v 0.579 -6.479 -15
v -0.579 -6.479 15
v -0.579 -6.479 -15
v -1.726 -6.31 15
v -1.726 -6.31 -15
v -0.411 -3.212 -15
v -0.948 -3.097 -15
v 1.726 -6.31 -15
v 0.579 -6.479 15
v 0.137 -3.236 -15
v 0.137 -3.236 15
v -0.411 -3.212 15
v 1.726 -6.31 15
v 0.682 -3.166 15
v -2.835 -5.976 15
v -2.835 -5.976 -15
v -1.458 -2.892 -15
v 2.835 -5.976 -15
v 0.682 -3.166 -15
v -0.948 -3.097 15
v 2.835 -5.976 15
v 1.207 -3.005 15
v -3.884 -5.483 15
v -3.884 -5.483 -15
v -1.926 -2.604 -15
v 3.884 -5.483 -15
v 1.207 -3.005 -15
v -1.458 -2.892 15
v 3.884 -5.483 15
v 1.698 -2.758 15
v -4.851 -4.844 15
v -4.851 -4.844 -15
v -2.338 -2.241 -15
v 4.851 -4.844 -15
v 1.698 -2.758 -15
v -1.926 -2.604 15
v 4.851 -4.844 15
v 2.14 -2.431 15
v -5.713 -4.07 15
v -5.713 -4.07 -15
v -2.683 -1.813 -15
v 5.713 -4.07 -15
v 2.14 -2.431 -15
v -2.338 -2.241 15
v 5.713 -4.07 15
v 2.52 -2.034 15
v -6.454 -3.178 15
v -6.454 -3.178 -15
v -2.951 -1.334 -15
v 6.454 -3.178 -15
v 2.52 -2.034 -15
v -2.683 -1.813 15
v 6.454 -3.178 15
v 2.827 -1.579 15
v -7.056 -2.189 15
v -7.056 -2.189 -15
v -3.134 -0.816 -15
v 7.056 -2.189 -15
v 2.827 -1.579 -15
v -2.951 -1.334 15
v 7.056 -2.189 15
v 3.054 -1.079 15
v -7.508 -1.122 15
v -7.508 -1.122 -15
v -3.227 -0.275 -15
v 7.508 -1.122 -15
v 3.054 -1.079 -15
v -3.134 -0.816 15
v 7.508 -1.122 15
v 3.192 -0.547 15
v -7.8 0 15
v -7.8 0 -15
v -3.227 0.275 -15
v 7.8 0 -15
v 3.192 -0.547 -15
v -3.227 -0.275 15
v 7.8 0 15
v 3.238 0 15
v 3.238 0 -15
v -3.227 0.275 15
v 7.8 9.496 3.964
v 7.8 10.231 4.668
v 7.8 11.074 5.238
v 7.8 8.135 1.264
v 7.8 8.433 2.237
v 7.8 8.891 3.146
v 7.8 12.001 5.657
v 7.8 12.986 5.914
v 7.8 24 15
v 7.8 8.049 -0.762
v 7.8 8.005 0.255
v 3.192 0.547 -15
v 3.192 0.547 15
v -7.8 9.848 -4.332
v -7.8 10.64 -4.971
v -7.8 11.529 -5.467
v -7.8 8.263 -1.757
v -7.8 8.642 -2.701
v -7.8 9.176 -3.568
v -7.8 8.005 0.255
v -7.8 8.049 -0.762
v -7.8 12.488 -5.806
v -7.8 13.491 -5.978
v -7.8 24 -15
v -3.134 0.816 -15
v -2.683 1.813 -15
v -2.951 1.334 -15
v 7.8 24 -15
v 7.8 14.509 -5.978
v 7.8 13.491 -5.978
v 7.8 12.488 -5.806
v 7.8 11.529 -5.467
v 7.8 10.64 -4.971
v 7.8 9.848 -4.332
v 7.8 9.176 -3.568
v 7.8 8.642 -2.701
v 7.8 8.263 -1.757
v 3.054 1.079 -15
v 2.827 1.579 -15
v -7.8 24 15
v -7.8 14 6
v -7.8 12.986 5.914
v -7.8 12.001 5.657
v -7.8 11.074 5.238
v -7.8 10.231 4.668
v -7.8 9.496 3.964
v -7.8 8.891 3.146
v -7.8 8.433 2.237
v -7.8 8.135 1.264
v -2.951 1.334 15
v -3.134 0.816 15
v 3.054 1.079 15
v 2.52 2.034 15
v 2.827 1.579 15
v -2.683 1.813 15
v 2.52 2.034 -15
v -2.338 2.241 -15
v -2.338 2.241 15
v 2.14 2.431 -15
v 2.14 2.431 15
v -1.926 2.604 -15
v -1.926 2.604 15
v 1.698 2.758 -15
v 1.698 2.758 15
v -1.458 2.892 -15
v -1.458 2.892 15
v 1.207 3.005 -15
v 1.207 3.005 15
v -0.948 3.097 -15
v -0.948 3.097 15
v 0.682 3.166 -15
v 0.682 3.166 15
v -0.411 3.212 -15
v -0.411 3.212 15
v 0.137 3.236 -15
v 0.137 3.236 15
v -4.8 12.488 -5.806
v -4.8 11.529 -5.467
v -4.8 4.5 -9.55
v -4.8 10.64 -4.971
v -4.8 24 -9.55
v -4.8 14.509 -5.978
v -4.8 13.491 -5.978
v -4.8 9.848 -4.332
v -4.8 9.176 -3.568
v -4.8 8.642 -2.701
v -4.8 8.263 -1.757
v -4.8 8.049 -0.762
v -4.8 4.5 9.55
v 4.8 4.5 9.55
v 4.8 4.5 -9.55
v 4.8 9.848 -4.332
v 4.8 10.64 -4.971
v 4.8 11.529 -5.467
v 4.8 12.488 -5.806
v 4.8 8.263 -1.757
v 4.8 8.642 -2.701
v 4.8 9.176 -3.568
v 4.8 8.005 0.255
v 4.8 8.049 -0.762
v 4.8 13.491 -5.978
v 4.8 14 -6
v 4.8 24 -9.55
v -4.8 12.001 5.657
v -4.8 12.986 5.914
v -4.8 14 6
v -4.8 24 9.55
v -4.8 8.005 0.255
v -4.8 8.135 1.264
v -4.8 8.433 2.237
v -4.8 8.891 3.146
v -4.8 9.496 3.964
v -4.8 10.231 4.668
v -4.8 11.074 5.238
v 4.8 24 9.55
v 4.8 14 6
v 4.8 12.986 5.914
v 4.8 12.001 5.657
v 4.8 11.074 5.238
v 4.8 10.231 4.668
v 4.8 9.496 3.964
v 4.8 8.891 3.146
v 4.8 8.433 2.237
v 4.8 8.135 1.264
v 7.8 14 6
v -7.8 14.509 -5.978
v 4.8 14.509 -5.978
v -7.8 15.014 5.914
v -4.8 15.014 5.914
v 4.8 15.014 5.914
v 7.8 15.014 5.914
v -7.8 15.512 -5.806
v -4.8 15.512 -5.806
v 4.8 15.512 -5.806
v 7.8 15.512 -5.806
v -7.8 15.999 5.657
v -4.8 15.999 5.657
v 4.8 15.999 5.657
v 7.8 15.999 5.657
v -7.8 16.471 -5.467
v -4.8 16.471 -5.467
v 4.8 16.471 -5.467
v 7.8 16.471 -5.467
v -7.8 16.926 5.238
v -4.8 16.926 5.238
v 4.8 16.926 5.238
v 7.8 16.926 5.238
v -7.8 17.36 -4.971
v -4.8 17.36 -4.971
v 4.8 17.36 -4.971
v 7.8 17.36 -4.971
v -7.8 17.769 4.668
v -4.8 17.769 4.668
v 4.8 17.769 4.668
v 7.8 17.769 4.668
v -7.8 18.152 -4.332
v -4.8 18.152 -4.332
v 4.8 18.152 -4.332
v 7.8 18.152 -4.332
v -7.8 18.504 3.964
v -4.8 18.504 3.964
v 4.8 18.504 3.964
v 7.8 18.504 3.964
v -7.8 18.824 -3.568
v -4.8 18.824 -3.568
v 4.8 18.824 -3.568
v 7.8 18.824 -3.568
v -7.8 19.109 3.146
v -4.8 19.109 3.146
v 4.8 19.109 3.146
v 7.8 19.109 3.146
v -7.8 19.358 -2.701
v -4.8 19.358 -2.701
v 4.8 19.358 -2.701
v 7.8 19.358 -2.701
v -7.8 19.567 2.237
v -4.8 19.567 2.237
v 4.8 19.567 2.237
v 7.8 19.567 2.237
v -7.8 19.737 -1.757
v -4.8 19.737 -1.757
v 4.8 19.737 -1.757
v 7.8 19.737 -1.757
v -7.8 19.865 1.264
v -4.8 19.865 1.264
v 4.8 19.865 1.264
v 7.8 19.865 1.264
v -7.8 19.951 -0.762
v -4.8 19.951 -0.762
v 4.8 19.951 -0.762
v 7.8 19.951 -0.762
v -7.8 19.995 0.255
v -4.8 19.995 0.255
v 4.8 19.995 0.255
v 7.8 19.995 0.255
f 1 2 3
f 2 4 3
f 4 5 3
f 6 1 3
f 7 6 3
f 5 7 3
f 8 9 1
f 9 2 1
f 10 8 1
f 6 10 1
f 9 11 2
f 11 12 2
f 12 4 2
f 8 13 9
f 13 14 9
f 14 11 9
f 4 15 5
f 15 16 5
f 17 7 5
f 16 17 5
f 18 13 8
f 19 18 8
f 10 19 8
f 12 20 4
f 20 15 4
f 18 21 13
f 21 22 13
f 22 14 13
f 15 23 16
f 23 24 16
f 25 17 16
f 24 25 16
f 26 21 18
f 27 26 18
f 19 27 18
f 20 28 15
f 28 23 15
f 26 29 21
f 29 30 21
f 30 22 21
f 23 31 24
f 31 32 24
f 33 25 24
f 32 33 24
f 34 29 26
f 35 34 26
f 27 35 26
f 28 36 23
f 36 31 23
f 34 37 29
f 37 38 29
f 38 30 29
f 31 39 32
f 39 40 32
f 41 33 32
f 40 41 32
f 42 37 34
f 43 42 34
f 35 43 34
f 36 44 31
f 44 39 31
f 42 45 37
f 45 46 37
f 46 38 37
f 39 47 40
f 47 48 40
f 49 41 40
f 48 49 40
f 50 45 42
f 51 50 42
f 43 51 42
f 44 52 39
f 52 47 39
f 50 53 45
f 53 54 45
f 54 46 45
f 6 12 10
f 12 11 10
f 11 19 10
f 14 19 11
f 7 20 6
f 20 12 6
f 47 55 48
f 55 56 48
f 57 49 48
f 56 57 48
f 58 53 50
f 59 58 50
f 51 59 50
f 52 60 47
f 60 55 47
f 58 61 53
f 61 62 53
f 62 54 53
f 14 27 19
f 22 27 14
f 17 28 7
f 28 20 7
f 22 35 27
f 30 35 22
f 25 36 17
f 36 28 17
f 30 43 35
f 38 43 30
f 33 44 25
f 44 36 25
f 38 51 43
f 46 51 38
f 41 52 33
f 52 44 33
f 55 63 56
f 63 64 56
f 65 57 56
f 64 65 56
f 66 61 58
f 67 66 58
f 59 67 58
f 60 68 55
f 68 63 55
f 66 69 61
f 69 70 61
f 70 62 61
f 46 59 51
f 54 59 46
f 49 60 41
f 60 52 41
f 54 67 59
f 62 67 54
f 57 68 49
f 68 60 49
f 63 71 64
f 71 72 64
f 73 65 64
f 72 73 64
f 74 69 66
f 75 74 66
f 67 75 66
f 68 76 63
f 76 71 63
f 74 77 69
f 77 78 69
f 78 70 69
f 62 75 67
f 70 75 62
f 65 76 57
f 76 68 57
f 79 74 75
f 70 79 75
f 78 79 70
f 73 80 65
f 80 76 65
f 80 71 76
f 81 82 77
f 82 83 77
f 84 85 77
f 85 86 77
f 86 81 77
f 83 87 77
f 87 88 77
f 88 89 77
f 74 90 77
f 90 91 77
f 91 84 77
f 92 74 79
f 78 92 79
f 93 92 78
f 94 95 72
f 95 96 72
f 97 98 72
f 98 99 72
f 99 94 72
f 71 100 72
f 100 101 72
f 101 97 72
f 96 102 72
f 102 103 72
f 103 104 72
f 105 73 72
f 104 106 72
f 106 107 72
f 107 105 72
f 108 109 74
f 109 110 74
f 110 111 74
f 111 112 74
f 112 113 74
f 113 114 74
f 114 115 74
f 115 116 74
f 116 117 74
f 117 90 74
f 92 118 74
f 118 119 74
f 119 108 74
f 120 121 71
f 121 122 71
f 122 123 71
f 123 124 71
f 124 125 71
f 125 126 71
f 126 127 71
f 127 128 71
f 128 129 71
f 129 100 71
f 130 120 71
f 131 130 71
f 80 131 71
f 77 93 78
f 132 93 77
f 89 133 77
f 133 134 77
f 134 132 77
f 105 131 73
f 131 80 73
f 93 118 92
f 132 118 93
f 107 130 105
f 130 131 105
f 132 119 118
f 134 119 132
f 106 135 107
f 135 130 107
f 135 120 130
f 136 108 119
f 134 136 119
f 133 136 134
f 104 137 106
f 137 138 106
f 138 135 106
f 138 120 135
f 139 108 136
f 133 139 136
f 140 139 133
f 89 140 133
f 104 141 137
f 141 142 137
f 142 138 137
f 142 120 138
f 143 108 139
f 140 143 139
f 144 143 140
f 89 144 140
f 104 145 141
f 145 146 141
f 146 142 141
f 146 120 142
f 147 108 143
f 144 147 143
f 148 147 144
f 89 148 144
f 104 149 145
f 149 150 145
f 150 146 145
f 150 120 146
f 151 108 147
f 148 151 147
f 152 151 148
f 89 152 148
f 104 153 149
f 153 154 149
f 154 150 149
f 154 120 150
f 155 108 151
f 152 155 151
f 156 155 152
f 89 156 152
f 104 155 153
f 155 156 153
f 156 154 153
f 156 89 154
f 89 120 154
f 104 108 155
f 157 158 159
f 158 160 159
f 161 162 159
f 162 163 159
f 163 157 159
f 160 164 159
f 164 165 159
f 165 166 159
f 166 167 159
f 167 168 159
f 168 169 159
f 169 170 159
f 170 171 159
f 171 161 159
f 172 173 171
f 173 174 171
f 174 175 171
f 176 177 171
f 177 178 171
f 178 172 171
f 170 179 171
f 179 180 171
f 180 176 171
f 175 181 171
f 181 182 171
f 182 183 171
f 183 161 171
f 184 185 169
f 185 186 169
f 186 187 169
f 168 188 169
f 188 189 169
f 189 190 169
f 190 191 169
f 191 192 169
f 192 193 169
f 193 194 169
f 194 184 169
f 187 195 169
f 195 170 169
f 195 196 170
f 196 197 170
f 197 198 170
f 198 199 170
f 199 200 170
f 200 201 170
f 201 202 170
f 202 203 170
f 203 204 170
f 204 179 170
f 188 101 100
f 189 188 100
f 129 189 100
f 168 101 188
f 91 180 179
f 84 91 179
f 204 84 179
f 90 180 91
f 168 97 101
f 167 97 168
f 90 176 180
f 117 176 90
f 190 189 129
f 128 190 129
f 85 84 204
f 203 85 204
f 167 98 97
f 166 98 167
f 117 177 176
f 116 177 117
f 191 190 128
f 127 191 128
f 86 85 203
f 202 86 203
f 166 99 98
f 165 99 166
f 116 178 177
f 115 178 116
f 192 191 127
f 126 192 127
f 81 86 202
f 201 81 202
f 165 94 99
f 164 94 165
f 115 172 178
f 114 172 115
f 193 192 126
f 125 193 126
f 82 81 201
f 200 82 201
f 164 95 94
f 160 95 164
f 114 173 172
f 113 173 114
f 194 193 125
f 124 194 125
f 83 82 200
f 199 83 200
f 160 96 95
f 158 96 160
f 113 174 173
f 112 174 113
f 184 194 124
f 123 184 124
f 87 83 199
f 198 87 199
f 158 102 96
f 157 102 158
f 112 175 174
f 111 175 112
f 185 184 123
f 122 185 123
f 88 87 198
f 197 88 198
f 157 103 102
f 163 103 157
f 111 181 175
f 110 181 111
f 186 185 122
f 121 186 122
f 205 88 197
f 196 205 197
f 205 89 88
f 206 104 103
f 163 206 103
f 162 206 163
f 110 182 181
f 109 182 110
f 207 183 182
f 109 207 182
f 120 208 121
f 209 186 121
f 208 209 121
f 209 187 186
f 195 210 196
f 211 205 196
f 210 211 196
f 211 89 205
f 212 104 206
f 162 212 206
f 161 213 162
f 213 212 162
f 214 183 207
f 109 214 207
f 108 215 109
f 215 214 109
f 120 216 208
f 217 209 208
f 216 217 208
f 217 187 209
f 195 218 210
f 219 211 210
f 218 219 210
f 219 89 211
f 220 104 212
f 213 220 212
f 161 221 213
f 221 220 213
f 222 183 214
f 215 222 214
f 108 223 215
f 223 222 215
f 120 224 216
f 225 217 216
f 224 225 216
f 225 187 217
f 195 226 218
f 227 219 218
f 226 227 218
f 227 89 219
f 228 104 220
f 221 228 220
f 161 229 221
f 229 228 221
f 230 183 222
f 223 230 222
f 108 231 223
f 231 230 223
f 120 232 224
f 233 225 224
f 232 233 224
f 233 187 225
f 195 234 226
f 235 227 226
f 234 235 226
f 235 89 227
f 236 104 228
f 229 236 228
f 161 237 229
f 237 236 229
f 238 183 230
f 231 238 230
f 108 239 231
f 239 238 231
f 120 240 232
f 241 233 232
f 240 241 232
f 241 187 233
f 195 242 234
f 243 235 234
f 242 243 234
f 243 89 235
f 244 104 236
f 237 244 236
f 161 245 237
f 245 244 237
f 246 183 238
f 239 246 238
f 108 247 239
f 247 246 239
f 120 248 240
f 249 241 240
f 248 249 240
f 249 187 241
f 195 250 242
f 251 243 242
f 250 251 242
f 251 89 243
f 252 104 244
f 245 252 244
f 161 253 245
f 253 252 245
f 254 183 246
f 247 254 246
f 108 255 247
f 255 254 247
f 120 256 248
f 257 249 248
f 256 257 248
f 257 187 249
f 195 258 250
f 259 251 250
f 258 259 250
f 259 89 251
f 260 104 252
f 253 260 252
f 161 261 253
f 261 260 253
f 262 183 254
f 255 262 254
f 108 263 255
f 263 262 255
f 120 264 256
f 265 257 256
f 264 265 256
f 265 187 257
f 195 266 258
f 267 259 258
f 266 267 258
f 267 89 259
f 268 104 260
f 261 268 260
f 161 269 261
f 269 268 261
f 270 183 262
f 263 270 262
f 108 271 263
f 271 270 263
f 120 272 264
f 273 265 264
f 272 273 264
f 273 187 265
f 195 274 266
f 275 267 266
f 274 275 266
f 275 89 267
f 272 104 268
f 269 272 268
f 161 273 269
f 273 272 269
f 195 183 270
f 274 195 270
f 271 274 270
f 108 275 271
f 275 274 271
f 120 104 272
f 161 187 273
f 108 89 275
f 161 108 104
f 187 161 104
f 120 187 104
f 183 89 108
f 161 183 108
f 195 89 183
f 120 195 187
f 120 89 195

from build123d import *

# Parameters (mm, degrees)
BOSS_EXTRUDE1_DEPTH      = 15
BOSS_EXTRUDE1_DEPTH_BACK = 15
SKETCH1_R                = 3.2385
CUT_EXTRUDE1_START       = -3
SKETCH2_W                = 19.1
SKETCH2_H                = 19.5
CUT_EXTRUDE1_DEPTH       = 9.6
CUT_EXTRUDE2_DEPTH       = 33.316559223
CUT_EXTRUDE2_DEPTH_BACK  = 33.316559223
SKETCH3_R                = 6


with BuildPart() as part:
    # Sketch1 → Boss-Extrude1 (new, two sides: drawn at the far end of the back side and taken through both)
    with BuildSketch(Plane.XY.offset(-BOSS_EXTRUDE1_DEPTH_BACK)):
        with BuildLine():
            Line((-7.8, 0), (-7.8, 24))
            Line((-7.8, 24), (7.8, 24))
            Line((7.8, 24), (7.8, 0))
            ThreePointArc((7.8, 0), (0, -6.5), (-7.8, 0))
        make_face()
        Circle(SKETCH1_R, mode=Mode.SUBTRACT)
    extrude(amount=BOSS_EXTRUDE1_DEPTH + BOSS_EXTRUDE1_DEPTH_BACK)

    # Sketch2 → Cut-Extrude1 (cut)
    with BuildSketch(Plane.ZY.offset(7.8).offset(CUT_EXTRUDE1_START)):
        with Locations((0, 14.25)):
            Rectangle(SKETCH2_W, SKETCH2_H)
    extrude(amount=-CUT_EXTRUDE1_DEPTH, mode=Mode.SUBTRACT)

    # Sketch3 → Cut-Extrude2 (cut, two sides: drawn at the far end of the back side and taken through both)
    with BuildSketch(Plane.ZY.offset(7.8).offset(-CUT_EXTRUDE2_DEPTH_BACK)):
        with Locations((0, 14)):
            Circle(SKETCH3_R)
    extrude(amount=CUT_EXTRUDE2_DEPTH + CUT_EXTRUDE2_DEPTH_BACK, mode=Mode.SUBTRACT)


solid = part.part
